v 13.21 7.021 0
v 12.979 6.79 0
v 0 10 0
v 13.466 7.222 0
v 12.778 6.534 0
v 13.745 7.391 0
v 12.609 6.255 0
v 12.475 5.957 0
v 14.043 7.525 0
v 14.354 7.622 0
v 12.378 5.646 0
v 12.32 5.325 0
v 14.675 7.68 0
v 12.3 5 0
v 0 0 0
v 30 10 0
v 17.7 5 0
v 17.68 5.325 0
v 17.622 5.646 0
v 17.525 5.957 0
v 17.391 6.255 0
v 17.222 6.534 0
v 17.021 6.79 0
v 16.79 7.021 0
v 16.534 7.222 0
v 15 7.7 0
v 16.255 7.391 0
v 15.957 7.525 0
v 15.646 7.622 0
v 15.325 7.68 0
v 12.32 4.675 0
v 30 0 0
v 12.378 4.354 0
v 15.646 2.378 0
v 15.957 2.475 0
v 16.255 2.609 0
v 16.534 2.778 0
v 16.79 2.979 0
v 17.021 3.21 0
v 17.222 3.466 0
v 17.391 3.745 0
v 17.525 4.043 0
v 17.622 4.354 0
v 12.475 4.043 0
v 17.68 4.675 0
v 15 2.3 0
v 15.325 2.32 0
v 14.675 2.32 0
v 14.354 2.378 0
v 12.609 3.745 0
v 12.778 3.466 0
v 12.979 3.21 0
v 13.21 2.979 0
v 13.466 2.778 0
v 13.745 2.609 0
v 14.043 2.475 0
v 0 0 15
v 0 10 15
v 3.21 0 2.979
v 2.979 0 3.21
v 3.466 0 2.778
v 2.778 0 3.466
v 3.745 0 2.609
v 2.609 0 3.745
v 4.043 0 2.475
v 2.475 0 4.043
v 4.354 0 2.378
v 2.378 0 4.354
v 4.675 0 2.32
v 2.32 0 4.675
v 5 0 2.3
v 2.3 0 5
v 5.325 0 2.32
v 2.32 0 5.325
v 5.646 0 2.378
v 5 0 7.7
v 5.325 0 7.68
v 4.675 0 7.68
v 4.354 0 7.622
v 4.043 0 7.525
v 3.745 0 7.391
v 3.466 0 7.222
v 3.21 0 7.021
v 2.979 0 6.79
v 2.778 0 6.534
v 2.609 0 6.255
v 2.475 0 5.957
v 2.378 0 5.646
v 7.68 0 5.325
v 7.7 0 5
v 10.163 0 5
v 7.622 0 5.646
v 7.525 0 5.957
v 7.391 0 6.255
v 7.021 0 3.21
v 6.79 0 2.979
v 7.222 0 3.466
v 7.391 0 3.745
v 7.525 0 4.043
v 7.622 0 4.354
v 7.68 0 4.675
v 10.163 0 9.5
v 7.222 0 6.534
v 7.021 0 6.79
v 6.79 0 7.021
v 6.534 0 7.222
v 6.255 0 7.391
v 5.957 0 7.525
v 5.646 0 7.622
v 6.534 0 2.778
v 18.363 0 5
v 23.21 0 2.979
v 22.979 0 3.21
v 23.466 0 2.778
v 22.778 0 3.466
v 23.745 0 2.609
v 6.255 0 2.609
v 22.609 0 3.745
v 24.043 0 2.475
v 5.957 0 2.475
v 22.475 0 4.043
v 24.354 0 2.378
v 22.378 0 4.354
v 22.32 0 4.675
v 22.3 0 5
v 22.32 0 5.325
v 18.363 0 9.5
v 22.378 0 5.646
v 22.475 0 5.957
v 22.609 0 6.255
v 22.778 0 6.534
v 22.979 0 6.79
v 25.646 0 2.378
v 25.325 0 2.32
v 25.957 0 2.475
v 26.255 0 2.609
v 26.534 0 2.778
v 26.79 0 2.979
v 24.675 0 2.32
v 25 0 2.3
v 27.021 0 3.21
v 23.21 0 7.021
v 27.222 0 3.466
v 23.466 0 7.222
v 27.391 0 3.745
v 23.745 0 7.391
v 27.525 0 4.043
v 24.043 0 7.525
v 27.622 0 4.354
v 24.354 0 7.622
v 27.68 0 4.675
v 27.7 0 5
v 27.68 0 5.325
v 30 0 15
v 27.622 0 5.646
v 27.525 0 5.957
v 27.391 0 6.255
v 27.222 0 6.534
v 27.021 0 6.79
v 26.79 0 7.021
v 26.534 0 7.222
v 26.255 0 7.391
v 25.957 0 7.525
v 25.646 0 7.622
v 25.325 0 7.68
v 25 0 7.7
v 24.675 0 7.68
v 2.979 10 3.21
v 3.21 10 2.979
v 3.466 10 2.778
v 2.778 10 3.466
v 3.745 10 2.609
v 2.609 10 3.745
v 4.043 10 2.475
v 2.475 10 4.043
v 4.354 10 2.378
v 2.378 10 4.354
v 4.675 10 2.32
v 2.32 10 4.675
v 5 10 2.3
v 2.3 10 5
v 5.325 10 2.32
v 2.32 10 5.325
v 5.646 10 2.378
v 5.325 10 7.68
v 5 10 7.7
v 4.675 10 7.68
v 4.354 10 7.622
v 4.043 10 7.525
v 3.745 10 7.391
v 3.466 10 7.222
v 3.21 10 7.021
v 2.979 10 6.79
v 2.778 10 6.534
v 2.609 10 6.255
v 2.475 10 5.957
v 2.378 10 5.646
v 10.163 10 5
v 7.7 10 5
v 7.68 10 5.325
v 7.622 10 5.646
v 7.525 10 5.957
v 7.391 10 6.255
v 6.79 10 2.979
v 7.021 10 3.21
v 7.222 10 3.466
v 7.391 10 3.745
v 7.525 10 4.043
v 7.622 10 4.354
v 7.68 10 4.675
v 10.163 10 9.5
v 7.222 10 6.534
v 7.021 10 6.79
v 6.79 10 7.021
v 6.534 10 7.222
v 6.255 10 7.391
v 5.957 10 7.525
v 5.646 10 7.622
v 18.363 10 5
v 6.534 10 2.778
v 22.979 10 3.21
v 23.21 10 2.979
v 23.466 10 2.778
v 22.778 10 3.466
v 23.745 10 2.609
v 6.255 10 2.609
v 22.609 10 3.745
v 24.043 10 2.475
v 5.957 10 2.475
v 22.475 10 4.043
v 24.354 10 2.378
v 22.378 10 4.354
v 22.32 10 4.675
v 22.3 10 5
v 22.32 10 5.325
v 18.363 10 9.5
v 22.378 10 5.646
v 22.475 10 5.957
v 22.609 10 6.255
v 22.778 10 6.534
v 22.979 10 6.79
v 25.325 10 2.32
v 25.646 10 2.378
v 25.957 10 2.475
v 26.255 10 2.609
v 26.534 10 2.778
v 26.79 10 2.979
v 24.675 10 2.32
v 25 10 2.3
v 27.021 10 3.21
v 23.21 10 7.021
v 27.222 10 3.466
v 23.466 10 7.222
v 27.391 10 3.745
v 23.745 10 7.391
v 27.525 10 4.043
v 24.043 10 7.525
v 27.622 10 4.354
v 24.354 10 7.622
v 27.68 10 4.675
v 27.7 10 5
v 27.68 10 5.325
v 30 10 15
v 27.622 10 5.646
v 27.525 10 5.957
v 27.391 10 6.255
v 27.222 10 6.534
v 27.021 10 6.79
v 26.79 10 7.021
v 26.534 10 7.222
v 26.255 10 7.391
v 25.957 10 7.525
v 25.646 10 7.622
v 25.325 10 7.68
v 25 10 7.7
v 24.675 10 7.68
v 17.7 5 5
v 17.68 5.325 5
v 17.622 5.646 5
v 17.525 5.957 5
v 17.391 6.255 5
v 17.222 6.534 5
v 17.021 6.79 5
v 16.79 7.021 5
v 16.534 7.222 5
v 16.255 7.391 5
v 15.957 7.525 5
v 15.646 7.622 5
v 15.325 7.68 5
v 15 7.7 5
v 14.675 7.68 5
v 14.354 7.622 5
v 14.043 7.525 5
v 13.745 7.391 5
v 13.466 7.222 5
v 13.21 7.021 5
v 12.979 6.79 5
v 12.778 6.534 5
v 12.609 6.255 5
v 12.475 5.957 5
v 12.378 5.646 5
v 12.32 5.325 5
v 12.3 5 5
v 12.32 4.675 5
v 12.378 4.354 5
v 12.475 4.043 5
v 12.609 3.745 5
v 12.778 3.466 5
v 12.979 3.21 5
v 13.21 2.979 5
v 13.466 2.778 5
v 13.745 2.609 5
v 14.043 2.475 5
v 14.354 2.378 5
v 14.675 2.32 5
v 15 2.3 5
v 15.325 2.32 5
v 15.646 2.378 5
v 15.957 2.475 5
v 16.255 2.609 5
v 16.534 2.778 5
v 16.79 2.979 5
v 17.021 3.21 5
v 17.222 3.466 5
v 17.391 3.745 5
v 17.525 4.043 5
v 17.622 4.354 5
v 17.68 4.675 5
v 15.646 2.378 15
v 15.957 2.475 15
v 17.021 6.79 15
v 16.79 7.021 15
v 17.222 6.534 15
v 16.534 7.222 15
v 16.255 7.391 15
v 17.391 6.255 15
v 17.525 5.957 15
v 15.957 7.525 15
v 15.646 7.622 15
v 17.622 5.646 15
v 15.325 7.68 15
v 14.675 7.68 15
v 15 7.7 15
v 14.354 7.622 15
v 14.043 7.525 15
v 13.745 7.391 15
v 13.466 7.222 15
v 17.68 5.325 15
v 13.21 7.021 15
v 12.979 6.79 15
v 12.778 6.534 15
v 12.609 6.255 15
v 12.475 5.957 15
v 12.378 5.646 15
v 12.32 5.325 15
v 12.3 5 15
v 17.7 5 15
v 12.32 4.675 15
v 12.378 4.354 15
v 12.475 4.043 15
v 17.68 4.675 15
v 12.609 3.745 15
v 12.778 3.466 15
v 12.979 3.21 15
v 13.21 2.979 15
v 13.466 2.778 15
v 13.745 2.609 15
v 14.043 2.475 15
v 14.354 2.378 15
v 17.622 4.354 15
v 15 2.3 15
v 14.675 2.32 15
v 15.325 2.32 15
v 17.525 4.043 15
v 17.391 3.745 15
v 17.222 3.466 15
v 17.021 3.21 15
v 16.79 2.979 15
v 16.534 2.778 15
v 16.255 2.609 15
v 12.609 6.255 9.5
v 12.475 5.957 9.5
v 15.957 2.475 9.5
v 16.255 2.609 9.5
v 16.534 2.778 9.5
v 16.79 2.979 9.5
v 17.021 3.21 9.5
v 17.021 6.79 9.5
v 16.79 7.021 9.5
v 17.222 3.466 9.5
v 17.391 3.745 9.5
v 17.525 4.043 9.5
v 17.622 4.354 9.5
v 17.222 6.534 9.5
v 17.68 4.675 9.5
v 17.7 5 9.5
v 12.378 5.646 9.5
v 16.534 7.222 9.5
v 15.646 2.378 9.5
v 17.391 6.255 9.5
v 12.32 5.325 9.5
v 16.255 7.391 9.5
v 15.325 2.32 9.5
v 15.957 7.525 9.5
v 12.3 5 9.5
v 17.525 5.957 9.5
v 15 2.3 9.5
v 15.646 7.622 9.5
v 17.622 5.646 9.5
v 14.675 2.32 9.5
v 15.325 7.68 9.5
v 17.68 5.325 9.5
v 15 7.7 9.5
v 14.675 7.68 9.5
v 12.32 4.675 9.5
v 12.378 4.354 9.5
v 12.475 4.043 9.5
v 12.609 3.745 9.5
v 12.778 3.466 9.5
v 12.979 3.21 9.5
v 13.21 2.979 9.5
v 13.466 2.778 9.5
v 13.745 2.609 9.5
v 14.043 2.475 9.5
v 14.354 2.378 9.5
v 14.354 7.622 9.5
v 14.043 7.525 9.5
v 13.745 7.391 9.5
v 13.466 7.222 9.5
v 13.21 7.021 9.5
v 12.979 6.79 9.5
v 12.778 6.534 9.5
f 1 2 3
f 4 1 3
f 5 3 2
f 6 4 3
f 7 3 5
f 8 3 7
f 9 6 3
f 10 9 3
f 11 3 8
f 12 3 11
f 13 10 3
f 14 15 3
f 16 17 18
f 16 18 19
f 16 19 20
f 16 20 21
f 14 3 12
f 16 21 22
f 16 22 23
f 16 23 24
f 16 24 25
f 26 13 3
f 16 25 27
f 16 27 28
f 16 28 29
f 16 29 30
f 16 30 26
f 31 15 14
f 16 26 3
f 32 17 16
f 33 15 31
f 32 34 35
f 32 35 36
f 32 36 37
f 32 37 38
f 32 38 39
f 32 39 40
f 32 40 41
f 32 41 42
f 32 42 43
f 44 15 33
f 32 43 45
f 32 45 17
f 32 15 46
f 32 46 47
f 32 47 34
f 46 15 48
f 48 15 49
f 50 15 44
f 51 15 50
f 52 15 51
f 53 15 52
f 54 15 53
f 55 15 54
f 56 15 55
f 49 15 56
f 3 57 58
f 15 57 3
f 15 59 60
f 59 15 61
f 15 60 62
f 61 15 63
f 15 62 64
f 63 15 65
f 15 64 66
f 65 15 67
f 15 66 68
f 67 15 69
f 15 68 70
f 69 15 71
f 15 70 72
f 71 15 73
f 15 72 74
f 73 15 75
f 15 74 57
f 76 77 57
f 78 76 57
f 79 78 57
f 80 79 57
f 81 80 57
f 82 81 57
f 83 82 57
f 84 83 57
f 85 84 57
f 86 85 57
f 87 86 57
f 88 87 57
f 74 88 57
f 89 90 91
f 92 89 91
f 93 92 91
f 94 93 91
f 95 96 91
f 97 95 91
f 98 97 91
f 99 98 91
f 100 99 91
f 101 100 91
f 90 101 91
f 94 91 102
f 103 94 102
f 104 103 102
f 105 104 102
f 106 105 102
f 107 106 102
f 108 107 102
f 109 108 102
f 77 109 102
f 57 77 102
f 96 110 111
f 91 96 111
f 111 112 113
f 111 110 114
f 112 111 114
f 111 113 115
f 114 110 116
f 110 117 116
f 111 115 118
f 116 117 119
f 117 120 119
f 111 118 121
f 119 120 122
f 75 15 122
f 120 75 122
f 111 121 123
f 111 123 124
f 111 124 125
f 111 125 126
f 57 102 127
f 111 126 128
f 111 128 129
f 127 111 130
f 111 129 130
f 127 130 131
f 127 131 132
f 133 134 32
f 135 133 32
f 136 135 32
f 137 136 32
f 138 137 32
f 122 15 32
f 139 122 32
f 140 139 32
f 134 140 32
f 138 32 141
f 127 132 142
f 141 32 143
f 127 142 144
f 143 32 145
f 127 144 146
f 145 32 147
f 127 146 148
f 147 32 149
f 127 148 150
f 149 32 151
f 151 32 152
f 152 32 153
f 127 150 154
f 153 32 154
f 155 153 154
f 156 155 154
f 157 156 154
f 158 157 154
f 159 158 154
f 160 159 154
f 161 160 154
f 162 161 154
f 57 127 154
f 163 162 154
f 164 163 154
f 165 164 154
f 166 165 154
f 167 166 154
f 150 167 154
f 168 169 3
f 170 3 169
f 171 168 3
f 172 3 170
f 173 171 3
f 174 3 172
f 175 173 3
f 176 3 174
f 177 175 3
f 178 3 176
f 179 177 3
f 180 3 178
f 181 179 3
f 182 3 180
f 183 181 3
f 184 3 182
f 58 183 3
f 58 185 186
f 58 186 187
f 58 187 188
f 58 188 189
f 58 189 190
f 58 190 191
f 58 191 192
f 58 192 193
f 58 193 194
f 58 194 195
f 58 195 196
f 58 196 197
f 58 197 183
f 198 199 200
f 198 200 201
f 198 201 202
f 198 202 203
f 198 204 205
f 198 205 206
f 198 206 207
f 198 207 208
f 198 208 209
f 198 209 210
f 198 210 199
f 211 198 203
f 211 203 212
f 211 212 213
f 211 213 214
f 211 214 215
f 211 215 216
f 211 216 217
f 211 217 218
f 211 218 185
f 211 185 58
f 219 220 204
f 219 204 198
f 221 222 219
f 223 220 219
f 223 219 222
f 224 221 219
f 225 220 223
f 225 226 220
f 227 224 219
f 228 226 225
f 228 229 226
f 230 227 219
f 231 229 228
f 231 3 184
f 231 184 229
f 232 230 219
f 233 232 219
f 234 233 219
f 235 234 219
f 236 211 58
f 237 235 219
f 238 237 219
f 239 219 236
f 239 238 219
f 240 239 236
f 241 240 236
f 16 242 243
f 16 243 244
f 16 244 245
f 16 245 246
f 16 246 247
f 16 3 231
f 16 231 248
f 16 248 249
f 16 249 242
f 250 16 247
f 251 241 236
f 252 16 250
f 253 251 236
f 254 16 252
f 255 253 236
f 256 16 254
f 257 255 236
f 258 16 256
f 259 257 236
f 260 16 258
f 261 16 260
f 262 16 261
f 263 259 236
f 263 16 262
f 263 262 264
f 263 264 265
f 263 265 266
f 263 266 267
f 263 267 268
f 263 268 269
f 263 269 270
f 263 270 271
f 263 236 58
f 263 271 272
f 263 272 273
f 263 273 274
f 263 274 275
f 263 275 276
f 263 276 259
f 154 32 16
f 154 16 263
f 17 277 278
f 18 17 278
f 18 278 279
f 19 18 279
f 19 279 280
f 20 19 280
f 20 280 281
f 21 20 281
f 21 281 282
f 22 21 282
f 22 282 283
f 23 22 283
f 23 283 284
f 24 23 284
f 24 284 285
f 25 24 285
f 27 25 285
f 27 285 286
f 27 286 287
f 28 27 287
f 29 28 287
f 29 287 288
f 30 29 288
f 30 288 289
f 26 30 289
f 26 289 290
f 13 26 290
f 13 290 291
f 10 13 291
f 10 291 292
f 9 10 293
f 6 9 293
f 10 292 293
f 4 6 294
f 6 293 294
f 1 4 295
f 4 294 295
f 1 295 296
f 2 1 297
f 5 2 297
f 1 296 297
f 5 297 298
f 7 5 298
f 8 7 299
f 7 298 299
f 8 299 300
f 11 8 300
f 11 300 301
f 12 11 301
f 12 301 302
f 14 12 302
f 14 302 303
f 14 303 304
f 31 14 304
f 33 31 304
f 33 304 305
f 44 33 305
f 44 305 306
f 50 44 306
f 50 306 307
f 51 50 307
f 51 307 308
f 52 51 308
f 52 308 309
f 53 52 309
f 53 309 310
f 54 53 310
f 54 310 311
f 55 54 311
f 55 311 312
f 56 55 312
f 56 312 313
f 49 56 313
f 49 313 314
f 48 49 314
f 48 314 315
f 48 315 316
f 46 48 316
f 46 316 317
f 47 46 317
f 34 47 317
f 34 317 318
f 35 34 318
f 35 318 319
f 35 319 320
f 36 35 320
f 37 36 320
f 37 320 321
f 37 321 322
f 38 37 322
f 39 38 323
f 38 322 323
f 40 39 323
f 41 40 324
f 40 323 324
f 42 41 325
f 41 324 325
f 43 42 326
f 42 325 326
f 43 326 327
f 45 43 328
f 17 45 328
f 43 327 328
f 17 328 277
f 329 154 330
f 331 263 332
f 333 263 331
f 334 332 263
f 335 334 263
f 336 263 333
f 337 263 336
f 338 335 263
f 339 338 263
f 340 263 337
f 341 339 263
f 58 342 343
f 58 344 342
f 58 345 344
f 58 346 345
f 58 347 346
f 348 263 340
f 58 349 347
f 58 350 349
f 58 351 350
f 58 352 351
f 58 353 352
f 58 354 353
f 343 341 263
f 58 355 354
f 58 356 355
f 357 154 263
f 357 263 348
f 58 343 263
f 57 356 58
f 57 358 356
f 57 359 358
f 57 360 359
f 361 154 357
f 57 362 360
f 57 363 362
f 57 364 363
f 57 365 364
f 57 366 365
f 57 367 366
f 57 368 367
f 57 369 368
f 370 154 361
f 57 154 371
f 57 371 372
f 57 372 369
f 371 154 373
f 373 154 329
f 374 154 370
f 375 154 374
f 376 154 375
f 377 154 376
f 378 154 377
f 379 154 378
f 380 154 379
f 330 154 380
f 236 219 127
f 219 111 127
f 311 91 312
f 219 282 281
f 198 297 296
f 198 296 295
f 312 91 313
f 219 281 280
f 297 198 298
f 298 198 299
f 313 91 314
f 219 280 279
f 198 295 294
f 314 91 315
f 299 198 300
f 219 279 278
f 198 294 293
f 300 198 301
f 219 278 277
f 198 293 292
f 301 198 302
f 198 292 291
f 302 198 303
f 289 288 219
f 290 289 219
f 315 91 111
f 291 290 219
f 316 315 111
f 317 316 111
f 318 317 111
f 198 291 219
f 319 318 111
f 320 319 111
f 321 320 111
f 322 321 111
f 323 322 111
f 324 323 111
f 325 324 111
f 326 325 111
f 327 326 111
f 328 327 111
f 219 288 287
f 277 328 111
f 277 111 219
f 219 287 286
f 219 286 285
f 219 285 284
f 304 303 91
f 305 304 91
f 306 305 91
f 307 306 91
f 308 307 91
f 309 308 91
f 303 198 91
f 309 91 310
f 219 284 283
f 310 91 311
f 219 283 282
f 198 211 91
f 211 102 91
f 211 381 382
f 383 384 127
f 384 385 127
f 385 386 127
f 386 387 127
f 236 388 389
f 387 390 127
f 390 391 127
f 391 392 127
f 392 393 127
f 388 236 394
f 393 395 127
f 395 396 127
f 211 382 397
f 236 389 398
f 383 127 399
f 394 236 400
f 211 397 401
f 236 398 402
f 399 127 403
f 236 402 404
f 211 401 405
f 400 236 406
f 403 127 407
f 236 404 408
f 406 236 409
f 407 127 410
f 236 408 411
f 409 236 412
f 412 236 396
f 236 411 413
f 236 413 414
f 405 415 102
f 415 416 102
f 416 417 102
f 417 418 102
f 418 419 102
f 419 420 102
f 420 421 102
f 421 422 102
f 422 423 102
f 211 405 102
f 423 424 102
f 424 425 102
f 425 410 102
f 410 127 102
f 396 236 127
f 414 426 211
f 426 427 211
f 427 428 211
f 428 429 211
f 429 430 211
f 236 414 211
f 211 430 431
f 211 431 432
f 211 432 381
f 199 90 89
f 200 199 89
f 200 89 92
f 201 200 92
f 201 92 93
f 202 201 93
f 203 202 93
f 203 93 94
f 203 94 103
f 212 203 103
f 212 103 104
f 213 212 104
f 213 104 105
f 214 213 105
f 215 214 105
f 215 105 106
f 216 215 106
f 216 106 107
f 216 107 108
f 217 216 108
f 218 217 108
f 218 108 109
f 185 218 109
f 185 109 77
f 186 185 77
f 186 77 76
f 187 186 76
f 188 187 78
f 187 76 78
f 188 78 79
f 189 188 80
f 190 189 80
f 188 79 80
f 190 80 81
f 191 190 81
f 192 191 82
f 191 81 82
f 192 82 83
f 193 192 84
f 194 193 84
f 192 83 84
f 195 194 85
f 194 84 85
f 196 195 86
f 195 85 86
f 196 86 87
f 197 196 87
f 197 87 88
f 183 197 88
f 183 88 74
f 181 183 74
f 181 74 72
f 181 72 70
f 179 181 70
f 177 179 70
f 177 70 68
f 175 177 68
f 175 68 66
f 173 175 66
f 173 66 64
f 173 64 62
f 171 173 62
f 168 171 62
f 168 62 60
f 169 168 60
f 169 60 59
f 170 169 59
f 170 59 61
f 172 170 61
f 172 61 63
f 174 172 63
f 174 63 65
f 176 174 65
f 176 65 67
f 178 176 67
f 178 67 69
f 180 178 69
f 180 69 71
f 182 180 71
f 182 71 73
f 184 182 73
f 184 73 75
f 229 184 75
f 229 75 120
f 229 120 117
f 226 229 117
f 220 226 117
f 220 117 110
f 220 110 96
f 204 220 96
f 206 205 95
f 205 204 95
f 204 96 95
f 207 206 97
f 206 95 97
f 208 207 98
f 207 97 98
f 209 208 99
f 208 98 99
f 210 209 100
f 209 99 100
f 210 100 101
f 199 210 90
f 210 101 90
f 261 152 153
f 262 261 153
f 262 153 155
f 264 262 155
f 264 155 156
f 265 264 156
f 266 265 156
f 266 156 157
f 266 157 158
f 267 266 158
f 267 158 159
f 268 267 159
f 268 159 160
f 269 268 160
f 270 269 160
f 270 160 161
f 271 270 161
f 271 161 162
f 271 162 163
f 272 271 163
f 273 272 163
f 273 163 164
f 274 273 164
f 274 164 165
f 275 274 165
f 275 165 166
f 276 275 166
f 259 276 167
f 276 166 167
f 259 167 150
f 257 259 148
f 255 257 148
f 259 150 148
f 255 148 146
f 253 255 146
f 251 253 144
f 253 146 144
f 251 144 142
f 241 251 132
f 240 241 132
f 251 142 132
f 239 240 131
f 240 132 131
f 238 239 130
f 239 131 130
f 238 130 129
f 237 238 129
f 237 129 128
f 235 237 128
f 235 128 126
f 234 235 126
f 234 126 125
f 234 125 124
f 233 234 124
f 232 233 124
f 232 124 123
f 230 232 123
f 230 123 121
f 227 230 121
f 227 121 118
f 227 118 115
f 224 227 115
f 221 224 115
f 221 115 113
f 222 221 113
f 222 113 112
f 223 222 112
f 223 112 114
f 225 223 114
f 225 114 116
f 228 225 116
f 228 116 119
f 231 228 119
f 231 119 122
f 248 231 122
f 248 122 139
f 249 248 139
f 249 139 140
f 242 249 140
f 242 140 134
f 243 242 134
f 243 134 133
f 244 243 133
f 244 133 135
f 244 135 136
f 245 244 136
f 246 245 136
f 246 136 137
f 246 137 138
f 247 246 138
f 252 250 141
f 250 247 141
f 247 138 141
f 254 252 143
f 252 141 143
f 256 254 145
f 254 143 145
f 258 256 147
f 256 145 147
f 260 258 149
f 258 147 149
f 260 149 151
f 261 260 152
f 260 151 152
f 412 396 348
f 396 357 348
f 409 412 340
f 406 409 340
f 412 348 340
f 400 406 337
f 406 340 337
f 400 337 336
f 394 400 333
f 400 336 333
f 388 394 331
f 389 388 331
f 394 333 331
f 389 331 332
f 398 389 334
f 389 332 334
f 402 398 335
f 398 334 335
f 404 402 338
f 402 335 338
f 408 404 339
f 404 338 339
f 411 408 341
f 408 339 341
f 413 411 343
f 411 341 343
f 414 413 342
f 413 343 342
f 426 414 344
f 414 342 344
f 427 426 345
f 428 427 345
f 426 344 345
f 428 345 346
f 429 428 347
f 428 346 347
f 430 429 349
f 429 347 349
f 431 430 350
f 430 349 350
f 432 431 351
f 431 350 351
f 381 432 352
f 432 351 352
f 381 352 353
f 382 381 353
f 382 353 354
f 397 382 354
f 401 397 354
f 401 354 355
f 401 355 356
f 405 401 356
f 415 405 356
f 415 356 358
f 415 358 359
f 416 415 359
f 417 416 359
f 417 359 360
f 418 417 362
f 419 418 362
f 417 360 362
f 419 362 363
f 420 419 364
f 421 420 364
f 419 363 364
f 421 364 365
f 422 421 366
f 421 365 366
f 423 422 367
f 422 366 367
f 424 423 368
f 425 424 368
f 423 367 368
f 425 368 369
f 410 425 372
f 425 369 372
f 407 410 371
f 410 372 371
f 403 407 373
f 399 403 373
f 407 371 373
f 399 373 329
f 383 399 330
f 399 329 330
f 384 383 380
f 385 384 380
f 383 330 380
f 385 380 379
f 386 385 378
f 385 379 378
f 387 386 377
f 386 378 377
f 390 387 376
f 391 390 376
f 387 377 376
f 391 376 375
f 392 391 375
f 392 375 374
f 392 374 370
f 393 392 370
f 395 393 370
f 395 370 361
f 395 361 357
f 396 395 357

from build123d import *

# Parameters (mm, degrees)
SKETCH_AS_DRAWN_W              = 30
SKETCH_AS_DRAWN_H              = 15
SKETCH_AS_DRAWN_R              = 2.7
EXTRUDE_DEPTH                  = 10
EXTRUDE_ONTO_SKETCH_ROLL_ANGLE = 90
SKETCH001_R                    = 2.7
POCKET_DEPTH                   = 15.001
SKETCH002_W                    = 8.2
SKETCH002_H                    = 4.5
POCKET001_DEPTH                = 10.001


with BuildPart() as part:
    # Sketch as drawn → Extrude (new)
    with BuildSketch(Plane.XY):
        with Locations((15, 7.5)):
            Rectangle(SKETCH_AS_DRAWN_W, SKETCH_AS_DRAWN_H)
        with Locations((5, 5)):
            Circle(SKETCH_AS_DRAWN_R, mode=Mode.SUBTRACT)
        with Locations((25, 5)):
            Circle(SKETCH_AS_DRAWN_R, mode=Mode.SUBTRACT)
    extrude(amount=-EXTRUDE_DEPTH)


with BuildPart() as part_1:
    # Extrude onto Sketch roll: moved
    add(part.part.rotate(Axis((0, 0, 0), (1, 0, 0)), EXTRUDE_ONTO_SKETCH_ROLL_ANGLE))


with BuildPart() as part_2:
    # Extrude onto Sketch placement: moved
    add(part_1.part)

    # Sketch001 → Pocket (cut, through all)
    with BuildSketch(Plane.XY.offset(15)):
        with Locations((15, 5)):
            Circle(SKETCH001_R)
    extrude(amount=-POCKET_DEPTH, mode=Mode.SUBTRACT)

    # Sketch002 → Pocket001 (cut, through all)
    with BuildSketch(Plane.XZ):
        with Locations((14.263317, 7.25)):
            Rectangle(SKETCH002_W, SKETCH002_H)
    extrude(amount=-POCKET001_DEPTH, mode=Mode.SUBTRACT)


solid = part_2.part
